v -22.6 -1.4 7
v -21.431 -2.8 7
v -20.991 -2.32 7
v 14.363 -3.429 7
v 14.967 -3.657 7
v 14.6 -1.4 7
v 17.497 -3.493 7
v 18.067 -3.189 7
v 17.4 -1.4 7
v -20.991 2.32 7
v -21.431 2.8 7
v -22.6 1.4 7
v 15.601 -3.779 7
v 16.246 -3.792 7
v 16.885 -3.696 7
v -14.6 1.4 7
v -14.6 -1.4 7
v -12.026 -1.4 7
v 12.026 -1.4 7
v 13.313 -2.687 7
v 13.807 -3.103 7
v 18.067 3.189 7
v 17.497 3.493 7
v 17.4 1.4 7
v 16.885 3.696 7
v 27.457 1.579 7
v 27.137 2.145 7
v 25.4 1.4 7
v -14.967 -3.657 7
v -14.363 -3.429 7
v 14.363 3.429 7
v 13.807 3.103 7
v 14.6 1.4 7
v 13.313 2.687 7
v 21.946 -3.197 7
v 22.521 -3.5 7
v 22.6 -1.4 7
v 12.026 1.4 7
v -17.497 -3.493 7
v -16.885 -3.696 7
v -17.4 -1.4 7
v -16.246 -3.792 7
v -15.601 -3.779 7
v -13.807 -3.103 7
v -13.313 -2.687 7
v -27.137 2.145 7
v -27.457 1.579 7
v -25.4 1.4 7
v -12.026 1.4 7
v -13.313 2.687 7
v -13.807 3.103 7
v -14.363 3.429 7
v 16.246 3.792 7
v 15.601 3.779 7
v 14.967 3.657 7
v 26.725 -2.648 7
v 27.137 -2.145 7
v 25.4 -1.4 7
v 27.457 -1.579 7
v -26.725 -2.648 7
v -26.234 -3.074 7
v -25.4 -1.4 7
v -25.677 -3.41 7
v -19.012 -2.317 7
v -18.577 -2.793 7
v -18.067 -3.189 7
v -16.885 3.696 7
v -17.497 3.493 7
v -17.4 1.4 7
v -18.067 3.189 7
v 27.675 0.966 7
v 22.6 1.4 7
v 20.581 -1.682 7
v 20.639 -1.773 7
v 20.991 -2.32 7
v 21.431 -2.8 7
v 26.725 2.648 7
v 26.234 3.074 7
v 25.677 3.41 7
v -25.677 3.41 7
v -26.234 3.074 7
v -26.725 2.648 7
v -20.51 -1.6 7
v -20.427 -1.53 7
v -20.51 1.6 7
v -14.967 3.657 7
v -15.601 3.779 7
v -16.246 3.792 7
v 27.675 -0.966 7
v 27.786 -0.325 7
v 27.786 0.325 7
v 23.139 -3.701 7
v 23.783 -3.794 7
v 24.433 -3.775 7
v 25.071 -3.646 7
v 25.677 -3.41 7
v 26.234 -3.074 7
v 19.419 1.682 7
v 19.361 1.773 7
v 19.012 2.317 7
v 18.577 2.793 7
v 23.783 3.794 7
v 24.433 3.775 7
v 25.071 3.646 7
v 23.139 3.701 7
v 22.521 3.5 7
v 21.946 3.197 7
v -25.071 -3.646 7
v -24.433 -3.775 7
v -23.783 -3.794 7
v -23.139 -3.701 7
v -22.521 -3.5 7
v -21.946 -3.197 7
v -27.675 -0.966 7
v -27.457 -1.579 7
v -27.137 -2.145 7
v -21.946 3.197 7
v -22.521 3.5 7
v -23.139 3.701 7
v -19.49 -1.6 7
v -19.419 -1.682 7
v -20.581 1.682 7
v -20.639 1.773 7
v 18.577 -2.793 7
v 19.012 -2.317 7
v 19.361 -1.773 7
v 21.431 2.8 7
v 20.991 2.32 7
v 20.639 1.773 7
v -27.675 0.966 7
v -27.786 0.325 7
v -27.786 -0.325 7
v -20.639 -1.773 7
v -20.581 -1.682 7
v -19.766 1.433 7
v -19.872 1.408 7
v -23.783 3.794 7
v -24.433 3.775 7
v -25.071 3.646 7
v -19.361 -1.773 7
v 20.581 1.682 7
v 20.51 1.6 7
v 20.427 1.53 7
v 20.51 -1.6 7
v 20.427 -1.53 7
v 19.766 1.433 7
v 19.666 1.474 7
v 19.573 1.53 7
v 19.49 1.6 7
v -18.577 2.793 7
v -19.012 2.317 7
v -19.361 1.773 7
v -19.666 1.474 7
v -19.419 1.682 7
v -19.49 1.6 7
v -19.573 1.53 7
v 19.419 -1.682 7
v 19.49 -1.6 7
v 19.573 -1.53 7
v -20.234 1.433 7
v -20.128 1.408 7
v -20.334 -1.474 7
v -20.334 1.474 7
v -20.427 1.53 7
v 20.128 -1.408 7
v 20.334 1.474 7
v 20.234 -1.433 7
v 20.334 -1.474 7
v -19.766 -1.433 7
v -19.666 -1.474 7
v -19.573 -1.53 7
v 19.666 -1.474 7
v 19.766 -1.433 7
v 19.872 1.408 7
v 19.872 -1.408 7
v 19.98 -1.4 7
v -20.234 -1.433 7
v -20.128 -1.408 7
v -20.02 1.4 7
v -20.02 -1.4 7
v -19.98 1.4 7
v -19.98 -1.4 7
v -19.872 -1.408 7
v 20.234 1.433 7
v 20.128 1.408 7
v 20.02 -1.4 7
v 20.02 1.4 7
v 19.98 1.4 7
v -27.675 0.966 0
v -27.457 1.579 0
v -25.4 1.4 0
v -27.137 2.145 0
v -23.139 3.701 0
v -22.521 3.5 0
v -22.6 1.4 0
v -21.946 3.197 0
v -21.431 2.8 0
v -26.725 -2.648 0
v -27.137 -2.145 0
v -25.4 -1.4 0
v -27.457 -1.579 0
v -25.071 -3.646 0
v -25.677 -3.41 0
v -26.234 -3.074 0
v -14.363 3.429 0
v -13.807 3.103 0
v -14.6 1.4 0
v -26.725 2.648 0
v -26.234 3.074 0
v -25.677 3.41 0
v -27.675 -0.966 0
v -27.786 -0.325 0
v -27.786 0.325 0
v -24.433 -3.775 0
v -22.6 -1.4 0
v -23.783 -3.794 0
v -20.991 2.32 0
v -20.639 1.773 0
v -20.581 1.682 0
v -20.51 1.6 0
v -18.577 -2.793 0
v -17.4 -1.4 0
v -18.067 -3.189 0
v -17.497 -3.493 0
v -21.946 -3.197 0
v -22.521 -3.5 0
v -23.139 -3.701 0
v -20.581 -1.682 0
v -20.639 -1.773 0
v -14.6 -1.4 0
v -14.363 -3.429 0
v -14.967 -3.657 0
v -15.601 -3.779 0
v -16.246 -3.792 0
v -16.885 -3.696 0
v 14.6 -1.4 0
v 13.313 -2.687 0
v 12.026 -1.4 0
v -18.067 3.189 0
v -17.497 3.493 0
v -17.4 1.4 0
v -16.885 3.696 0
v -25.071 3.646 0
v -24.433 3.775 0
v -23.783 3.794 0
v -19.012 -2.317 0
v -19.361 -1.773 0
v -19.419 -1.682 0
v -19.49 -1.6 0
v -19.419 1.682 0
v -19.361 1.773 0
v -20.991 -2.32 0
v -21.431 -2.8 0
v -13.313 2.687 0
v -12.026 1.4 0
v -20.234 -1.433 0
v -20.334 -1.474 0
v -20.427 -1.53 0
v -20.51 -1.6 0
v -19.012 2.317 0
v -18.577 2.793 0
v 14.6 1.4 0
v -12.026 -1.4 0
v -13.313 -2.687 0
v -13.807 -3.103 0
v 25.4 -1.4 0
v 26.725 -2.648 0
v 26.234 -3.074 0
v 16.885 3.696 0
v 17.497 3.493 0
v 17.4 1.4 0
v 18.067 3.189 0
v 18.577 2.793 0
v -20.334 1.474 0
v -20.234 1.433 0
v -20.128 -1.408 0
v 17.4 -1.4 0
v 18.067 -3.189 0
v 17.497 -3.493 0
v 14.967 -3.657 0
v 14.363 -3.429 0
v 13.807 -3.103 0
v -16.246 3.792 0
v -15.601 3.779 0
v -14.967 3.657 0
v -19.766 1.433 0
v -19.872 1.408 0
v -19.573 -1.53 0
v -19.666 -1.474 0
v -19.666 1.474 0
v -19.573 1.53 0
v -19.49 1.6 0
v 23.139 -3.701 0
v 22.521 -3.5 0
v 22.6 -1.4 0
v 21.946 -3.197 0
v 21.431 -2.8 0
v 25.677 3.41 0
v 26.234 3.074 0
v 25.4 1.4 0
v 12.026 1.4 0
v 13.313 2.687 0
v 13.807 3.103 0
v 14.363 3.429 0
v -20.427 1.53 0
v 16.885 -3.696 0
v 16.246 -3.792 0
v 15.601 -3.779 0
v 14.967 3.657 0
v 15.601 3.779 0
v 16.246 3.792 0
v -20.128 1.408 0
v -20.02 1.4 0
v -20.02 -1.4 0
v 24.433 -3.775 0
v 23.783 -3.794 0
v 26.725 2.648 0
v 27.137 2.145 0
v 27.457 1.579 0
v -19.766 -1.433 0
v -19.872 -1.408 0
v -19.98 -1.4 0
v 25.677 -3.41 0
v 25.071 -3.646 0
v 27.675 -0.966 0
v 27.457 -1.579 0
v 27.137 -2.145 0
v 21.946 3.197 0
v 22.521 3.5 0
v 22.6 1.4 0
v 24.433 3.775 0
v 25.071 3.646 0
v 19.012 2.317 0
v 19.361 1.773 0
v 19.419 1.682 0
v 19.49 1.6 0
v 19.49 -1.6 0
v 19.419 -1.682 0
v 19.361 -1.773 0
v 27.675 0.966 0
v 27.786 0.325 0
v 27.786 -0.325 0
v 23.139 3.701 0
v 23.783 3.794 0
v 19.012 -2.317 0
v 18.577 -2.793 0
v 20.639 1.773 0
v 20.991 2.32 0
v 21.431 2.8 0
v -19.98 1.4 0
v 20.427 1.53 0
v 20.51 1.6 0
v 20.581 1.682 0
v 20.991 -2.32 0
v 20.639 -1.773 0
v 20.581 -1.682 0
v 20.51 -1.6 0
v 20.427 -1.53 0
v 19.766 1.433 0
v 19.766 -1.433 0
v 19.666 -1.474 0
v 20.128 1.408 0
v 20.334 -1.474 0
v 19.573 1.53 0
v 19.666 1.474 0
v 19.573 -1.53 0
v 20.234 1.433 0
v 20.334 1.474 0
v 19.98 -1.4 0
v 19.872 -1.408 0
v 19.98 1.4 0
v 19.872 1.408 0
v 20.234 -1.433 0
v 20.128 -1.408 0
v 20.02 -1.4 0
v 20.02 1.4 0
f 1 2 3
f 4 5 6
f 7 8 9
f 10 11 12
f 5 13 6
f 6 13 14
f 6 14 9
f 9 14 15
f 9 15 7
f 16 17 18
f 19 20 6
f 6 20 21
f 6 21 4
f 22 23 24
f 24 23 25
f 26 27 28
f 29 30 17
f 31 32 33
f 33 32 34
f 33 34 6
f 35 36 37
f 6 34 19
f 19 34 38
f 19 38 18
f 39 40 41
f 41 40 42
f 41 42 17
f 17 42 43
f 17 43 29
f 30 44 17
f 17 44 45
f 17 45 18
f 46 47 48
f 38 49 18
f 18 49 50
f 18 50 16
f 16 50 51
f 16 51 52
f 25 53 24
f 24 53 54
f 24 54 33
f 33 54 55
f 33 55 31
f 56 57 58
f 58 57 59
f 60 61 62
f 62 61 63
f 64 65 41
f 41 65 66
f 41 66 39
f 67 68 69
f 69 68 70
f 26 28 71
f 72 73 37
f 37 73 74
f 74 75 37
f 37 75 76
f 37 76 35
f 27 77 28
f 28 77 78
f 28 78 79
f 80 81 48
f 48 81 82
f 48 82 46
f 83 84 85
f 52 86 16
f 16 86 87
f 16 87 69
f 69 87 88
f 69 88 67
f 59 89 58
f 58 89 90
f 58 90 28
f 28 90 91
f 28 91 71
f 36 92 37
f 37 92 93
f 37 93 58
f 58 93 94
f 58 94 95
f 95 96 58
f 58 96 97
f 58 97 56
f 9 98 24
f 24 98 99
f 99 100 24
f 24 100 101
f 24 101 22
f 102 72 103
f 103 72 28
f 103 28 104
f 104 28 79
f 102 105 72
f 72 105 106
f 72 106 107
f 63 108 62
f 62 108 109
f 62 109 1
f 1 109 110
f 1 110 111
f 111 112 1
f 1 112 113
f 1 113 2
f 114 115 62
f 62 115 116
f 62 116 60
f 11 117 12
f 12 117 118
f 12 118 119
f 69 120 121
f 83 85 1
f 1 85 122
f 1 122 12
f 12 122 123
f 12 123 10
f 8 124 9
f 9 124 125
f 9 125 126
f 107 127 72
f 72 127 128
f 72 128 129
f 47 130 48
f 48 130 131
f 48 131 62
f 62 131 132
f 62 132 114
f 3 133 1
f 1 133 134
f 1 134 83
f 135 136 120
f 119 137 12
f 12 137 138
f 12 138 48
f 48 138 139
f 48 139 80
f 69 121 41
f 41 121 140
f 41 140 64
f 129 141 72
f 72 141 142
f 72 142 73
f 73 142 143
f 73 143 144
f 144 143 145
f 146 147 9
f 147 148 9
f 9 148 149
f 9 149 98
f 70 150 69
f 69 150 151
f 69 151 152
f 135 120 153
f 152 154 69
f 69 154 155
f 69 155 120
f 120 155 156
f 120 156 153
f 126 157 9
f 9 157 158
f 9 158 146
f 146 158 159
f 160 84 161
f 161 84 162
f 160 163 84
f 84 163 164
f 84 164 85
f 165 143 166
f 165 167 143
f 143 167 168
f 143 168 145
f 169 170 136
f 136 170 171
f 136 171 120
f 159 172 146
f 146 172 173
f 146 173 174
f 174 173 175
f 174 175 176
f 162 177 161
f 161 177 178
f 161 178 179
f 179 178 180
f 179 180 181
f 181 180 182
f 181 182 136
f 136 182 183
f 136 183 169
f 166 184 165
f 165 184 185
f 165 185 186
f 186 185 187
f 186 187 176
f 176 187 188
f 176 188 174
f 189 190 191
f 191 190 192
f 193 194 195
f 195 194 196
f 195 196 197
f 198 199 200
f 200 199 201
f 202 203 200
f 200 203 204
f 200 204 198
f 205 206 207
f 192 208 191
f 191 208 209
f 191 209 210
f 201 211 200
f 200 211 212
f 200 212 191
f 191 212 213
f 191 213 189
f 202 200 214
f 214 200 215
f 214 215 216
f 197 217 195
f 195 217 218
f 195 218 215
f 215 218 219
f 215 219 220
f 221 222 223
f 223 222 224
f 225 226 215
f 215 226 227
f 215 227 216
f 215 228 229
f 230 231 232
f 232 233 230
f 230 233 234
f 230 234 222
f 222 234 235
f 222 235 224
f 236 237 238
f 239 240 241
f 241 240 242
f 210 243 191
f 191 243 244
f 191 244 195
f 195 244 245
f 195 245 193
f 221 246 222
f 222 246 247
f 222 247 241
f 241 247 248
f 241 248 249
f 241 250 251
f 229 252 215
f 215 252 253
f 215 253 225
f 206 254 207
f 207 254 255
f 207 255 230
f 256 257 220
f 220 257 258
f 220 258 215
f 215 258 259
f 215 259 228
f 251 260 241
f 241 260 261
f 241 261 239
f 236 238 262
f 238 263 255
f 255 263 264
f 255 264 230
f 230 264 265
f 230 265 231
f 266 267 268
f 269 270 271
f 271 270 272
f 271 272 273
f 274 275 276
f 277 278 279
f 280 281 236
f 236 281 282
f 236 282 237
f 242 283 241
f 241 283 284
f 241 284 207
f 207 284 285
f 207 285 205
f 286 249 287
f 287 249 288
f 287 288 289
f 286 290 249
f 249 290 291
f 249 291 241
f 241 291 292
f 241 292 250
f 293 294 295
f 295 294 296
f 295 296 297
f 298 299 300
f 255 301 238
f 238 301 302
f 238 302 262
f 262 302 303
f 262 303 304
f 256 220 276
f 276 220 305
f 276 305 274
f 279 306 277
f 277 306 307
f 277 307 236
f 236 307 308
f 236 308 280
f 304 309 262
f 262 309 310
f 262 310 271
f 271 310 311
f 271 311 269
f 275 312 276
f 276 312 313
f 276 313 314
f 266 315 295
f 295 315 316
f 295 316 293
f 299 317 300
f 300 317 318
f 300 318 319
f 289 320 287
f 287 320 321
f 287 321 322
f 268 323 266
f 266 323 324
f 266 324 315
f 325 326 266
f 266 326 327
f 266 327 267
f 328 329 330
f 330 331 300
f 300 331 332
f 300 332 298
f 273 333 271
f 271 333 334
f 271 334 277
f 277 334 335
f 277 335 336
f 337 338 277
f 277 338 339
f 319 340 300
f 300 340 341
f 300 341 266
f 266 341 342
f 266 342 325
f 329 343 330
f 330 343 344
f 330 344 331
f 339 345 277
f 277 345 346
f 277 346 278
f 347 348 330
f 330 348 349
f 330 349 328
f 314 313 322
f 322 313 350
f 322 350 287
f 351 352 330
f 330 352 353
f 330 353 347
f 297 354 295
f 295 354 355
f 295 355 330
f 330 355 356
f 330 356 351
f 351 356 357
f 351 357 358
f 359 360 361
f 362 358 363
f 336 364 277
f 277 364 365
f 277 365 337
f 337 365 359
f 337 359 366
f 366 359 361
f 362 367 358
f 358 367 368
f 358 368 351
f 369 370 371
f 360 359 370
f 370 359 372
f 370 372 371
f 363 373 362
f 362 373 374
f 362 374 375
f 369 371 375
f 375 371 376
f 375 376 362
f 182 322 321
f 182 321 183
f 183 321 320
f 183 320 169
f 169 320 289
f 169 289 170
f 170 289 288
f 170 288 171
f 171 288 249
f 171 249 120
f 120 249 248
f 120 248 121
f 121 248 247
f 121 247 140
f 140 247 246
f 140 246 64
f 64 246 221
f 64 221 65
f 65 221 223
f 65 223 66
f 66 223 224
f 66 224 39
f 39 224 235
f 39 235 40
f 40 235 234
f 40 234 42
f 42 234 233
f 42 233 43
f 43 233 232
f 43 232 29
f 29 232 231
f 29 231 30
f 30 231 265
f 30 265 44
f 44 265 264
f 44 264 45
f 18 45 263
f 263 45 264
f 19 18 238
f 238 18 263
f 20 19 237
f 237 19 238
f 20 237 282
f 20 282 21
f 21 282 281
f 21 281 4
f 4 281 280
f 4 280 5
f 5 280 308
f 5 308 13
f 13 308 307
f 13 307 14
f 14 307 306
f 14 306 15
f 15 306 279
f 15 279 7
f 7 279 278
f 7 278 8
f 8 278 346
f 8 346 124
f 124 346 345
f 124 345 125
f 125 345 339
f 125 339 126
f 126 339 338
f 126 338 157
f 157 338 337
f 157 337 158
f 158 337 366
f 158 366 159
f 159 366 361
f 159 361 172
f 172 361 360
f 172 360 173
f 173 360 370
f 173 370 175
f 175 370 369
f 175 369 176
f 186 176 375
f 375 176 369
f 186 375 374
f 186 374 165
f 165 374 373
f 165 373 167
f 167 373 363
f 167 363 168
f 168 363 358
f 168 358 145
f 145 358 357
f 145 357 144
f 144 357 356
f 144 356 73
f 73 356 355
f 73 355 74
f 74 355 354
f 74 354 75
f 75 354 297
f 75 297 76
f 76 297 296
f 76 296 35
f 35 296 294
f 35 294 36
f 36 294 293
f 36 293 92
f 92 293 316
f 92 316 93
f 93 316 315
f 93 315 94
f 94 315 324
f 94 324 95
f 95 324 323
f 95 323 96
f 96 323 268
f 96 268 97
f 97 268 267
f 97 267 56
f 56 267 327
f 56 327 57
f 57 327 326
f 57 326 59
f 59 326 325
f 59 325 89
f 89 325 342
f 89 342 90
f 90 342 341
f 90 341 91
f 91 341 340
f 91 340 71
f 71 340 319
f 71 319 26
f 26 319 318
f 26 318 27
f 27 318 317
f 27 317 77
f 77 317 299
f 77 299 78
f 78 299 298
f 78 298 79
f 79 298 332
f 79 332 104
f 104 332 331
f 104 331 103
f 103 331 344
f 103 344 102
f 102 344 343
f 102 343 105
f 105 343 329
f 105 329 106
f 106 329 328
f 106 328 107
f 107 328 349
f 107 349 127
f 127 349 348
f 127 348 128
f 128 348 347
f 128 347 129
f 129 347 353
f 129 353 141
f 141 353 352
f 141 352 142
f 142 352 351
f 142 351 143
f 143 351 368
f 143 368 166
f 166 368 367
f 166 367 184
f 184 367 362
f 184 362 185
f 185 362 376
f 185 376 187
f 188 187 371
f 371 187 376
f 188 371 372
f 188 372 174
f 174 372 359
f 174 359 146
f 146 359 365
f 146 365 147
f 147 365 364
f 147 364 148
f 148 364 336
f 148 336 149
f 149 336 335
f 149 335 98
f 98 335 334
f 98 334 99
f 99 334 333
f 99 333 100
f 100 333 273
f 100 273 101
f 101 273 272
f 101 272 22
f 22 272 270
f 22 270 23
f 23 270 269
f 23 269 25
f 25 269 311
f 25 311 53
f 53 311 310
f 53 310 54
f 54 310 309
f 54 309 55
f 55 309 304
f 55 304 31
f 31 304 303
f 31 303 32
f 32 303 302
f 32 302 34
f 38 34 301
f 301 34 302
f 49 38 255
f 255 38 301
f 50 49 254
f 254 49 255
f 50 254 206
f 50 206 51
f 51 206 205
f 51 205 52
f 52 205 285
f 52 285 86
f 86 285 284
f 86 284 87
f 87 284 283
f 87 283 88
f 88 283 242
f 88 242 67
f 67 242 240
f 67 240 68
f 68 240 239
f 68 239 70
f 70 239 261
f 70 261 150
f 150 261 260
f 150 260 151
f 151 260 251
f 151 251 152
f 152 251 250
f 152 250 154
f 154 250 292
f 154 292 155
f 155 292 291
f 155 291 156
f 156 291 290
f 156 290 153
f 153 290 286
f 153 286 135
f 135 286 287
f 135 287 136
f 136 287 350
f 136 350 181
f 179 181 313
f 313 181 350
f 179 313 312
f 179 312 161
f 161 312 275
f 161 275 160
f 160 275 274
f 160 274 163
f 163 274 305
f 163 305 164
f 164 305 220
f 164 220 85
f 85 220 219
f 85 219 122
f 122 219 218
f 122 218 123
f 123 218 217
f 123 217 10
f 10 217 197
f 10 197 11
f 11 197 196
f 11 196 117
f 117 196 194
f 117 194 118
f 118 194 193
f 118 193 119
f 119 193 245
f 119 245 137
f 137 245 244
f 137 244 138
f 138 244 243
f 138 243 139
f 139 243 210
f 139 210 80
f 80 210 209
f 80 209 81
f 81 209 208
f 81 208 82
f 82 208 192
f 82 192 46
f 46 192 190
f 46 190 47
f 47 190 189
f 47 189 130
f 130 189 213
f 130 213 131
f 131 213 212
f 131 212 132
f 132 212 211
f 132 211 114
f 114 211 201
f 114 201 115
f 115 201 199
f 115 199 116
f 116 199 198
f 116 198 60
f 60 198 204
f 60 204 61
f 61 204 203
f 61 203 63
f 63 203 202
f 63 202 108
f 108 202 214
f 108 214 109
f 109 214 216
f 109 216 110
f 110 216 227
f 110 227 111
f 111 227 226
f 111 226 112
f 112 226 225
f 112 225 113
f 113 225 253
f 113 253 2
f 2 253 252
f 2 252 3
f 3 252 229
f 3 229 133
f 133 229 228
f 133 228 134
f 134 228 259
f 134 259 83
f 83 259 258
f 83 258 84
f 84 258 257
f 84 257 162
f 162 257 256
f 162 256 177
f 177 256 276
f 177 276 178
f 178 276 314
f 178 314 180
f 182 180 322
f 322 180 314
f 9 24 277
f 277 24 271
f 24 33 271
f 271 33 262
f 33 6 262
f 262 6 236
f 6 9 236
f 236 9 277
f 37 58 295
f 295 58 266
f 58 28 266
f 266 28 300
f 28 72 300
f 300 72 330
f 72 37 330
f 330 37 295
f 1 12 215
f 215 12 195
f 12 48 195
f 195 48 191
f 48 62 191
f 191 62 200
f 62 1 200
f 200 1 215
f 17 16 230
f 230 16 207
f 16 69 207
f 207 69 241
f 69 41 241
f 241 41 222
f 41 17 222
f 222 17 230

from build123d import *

# Parameters (mm, degrees)
ESBO_O1_W                = 2.8
ESBO_O1_H                = 2.8
RESSALTO_EXTRUS_O1_DEPTH = 7


with BuildPart() as part:
    # Esboço1 → Ressalto-extrusão1 (new body)
    with BuildSketch(Plane.XY):
        with BuildLine():
            Line((13.312994231, 2.687005769), (12.025988463, 1.4))
            Line((12.025988463, 1.4), (-12.025988463, 1.4))
            Line((-12.025988463, 1.4), (-13.312994231, 2.687005769))
            ThreePointArc((-13.312994231, 2.687005769), (-16.56763954, 3.75736415), (-19.360846454, 1.773333333))
            ThreePointArc((-19.360846454, 1.773333333), (-19.618471303, 1.500555813), (-19.979949748, 1.4))
            Line((-19.979949748, 1.4), (-20.020050252, 1.4))
            ThreePointArc((-20.020050252, 1.4), (-20.381528697, 1.500555813), (-20.639153546, 1.773333333))
            ThreePointArc((-20.639153546, 1.773333333), (-27.8, 0), (-20.639153546, -1.773333333))
            ThreePointArc((-20.639153546, -1.773333333), (-20.381528697, -1.500555813), (-20.020050252, -1.4))
            Line((-20.020050252, -1.4), (-19.979949748, -1.4))
            ThreePointArc((-19.979949748, -1.4), (-19.618471303, -1.500555813), (-19.360846454, -1.773333333))
            ThreePointArc((-19.360846454, -1.773333333), (-16.56763954, -3.75736415), (-13.312994231, -2.687005769))
            Line((-13.312994231, -2.687005769), (-12.025988463, -1.4))
            Line((-12.025988463, -1.4), (12.025988463, -1.4))
            Line((12.025988463, -1.4), (13.312994231, -2.687005769))
            ThreePointArc((13.312994231, -2.687005769), (16.56763954, -3.75736415), (19.360846454, -1.773333333))
            ThreePointArc((19.360846454, -1.773333333), (19.618471303, -1.500555813), (19.979949748, -1.4))
            Line((19.979949748, -1.4), (20.020050252, -1.4))
            ThreePointArc((20.020050252, -1.4), (20.381528697, -1.500555813), (20.639153546, -1.773333333))
            ThreePointArc((20.639153546, -1.773333333), (27.8, 0), (20.639153546, 1.773333333))
            ThreePointArc((20.639153546, 1.773333333), (20.381528697, 1.500555813), (20.020050252, 1.4))
            Line((20.020050252, 1.4), (19.979949748, 1.4))
            ThreePointArc((19.979949748, 1.4), (19.618471303, 1.500555813), (19.360846454, 1.773333333))
            ThreePointArc((19.360846454, 1.773333333), (16.56763954, 3.75736415), (13.312994231, 2.687005769))
        make_face()
        with Locations((16, 0)):
            Rectangle(ESBO_O1_W, ESBO_O1_H, mode=Mode.SUBTRACT)
        with Locations((24, 0)):
            Rectangle(ESBO_O1_W, ESBO_O1_H, mode=Mode.SUBTRACT)
        with Locations((-24, 0)):
            Rectangle(ESBO_O1_W, ESBO_O1_H, mode=Mode.SUBTRACT)
        with Locations((-16, 0)):
            Rectangle(ESBO_O1_W, ESBO_O1_H, mode=Mode.SUBTRACT)
    extrude(amount=RESSALTO_EXTRUS_O1_DEPTH)


solid = part.part
